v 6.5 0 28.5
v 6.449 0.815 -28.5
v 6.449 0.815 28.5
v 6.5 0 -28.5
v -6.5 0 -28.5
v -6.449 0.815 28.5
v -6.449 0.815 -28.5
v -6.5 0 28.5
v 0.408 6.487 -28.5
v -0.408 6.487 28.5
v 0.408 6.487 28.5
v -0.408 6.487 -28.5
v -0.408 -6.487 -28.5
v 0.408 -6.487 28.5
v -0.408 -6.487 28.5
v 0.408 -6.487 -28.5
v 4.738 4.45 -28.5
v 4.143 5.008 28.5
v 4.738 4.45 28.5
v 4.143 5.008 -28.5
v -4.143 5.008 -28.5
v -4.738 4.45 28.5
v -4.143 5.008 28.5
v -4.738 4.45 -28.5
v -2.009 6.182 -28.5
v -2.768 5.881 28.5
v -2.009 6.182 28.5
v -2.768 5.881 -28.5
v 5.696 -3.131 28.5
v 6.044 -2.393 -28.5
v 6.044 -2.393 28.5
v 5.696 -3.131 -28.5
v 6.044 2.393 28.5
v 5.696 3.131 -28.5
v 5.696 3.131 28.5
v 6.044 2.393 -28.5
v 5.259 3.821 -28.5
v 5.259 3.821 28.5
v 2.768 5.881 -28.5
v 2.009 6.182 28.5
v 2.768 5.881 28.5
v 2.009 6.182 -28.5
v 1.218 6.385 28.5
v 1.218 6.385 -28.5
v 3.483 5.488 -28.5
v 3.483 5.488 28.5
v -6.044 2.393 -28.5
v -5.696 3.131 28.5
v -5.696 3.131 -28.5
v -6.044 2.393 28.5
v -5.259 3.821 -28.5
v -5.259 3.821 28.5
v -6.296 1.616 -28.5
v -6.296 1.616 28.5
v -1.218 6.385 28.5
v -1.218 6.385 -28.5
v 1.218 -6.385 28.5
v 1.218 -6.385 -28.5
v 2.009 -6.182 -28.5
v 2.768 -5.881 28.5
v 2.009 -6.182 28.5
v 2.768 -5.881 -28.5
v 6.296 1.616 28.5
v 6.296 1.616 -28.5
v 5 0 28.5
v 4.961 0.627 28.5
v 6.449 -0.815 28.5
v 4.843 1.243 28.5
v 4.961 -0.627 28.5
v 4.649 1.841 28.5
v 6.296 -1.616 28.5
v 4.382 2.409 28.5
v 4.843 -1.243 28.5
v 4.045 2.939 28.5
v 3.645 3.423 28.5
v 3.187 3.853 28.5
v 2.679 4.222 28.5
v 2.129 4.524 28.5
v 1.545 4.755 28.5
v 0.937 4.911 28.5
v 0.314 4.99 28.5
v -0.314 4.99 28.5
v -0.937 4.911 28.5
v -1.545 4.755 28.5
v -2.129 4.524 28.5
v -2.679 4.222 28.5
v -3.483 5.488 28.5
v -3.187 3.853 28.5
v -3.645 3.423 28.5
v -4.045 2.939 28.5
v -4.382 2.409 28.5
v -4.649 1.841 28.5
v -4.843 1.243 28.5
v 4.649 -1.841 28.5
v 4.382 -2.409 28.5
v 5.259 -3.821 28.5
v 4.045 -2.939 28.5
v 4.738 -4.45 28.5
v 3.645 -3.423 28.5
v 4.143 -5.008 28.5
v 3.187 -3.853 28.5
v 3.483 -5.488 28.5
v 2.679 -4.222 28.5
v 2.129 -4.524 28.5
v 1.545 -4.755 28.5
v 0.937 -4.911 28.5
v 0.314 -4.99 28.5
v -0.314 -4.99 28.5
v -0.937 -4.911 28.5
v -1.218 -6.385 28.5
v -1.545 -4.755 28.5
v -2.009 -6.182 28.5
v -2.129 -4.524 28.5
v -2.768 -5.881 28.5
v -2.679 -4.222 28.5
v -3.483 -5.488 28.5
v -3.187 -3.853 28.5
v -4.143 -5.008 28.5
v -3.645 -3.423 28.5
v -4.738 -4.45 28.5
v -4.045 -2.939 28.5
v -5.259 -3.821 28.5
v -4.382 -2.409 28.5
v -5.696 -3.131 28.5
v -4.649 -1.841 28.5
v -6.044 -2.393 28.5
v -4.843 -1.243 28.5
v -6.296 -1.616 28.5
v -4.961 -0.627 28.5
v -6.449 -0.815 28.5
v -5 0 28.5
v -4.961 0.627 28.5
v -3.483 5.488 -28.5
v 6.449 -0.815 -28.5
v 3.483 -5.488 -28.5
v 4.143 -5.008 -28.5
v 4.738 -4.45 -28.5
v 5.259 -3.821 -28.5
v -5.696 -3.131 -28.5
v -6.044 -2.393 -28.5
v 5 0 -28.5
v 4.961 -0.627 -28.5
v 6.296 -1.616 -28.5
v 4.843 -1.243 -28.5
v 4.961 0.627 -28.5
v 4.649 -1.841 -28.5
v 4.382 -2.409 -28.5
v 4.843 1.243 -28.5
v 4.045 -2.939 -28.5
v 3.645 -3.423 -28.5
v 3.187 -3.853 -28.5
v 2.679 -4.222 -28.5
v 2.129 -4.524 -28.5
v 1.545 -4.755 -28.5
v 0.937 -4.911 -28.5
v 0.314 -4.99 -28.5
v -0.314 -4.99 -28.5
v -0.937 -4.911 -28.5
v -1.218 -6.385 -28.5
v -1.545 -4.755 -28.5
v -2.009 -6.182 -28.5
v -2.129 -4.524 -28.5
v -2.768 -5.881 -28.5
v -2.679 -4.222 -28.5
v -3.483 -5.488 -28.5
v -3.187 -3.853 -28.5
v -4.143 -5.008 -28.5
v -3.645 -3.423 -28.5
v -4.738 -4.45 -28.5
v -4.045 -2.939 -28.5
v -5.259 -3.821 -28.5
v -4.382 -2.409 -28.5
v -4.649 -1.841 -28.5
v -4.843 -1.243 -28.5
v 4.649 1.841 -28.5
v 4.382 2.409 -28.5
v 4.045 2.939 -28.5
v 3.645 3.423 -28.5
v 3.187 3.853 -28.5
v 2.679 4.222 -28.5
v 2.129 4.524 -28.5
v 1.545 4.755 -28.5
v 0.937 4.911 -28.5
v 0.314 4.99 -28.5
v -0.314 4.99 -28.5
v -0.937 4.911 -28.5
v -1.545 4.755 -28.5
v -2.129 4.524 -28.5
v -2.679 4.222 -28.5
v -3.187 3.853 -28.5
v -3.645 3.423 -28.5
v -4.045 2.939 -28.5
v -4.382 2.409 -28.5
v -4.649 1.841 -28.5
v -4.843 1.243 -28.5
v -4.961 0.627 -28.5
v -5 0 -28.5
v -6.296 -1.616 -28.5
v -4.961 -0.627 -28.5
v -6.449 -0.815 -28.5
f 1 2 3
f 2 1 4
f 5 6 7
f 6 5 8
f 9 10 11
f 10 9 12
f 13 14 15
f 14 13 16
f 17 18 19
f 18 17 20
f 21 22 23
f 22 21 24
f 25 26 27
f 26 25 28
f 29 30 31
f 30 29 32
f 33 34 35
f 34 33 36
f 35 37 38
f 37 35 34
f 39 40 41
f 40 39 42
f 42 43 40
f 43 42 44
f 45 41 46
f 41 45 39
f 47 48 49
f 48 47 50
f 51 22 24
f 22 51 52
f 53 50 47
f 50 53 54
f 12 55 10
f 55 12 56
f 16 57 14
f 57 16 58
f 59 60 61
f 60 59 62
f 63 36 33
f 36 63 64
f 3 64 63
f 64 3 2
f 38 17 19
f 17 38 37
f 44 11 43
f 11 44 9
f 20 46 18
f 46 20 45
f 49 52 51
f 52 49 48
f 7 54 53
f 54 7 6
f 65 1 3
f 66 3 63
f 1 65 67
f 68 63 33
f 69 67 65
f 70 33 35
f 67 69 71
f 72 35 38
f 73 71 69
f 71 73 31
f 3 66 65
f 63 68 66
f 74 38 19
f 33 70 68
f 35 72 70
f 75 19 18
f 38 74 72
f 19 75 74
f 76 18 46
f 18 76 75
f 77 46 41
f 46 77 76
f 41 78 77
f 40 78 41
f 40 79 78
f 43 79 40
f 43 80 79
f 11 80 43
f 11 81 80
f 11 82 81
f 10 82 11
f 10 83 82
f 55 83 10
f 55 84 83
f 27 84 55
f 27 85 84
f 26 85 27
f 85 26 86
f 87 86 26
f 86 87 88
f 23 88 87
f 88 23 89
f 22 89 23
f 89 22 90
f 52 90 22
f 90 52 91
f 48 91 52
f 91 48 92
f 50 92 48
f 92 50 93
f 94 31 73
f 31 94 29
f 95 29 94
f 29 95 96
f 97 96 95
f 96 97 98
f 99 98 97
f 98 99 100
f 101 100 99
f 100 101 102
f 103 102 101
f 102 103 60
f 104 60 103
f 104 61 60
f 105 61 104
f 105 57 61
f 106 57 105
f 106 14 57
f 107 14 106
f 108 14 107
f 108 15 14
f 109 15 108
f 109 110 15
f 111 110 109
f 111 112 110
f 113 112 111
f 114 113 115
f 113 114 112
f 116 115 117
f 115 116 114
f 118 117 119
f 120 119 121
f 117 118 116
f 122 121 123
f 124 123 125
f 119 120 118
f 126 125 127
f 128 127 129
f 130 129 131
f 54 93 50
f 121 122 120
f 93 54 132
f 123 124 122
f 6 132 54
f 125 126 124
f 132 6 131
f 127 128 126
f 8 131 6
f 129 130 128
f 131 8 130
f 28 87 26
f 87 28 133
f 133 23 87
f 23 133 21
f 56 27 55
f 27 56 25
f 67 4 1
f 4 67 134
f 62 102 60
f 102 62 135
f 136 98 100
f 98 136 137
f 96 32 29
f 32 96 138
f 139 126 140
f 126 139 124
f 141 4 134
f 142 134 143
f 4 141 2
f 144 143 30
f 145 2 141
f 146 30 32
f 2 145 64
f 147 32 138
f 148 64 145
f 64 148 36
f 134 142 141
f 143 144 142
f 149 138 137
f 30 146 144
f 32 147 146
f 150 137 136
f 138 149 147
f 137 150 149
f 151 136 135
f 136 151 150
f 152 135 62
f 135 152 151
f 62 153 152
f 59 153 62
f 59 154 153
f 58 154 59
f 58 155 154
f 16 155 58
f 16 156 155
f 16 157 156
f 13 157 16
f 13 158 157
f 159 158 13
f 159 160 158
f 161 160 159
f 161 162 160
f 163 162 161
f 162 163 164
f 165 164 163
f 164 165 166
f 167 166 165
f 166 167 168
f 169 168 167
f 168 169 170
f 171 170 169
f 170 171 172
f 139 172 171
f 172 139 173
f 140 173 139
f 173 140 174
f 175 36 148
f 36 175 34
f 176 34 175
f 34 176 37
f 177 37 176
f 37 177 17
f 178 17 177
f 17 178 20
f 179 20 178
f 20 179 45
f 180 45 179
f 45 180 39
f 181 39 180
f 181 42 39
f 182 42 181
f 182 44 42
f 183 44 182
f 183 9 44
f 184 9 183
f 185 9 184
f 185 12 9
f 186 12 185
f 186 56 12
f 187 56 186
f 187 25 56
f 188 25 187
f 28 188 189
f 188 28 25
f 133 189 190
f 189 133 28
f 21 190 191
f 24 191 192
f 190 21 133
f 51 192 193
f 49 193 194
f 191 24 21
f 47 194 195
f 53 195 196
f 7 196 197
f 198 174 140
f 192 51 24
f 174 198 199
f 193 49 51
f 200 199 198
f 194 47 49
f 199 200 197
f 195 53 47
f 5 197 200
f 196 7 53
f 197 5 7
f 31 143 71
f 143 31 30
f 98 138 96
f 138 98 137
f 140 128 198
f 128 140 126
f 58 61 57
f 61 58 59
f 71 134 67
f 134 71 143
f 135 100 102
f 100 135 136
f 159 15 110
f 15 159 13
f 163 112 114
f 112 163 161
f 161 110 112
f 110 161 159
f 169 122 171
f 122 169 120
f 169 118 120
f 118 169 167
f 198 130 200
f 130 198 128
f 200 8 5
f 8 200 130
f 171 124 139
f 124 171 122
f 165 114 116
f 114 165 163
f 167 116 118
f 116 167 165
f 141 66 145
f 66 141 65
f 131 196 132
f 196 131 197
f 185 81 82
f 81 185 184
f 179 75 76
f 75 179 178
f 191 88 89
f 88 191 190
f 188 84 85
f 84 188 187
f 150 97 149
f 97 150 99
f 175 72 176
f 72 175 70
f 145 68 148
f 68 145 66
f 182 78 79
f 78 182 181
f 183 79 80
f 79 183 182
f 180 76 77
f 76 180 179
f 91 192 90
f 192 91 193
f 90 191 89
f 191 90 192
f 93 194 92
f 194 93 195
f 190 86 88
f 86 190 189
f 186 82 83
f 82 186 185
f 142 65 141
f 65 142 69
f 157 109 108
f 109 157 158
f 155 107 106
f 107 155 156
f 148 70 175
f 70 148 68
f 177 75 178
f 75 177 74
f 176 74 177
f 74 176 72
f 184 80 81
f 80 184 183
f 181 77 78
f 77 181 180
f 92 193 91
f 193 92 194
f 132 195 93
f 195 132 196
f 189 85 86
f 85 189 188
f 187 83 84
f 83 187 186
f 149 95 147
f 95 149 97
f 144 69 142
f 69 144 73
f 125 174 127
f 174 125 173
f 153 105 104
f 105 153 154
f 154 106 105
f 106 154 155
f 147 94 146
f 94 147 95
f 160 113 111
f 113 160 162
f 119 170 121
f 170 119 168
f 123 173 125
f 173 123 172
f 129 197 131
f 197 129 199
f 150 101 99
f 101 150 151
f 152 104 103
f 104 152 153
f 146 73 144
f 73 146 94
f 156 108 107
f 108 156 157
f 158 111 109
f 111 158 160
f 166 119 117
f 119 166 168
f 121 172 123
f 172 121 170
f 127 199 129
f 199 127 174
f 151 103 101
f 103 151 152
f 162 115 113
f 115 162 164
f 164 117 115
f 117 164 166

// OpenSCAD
$fn = 50;


difference() {
	union() {
		translate(v = [0, 0, -28.5000000000]) {
			cylinder(h = 57, r = 6.5000000000);
		}
	}
	union() {
		translate(v = [0, 0, -100.0000000000]) {
			cylinder(h = 200, r = 5);
		}
	}
}
